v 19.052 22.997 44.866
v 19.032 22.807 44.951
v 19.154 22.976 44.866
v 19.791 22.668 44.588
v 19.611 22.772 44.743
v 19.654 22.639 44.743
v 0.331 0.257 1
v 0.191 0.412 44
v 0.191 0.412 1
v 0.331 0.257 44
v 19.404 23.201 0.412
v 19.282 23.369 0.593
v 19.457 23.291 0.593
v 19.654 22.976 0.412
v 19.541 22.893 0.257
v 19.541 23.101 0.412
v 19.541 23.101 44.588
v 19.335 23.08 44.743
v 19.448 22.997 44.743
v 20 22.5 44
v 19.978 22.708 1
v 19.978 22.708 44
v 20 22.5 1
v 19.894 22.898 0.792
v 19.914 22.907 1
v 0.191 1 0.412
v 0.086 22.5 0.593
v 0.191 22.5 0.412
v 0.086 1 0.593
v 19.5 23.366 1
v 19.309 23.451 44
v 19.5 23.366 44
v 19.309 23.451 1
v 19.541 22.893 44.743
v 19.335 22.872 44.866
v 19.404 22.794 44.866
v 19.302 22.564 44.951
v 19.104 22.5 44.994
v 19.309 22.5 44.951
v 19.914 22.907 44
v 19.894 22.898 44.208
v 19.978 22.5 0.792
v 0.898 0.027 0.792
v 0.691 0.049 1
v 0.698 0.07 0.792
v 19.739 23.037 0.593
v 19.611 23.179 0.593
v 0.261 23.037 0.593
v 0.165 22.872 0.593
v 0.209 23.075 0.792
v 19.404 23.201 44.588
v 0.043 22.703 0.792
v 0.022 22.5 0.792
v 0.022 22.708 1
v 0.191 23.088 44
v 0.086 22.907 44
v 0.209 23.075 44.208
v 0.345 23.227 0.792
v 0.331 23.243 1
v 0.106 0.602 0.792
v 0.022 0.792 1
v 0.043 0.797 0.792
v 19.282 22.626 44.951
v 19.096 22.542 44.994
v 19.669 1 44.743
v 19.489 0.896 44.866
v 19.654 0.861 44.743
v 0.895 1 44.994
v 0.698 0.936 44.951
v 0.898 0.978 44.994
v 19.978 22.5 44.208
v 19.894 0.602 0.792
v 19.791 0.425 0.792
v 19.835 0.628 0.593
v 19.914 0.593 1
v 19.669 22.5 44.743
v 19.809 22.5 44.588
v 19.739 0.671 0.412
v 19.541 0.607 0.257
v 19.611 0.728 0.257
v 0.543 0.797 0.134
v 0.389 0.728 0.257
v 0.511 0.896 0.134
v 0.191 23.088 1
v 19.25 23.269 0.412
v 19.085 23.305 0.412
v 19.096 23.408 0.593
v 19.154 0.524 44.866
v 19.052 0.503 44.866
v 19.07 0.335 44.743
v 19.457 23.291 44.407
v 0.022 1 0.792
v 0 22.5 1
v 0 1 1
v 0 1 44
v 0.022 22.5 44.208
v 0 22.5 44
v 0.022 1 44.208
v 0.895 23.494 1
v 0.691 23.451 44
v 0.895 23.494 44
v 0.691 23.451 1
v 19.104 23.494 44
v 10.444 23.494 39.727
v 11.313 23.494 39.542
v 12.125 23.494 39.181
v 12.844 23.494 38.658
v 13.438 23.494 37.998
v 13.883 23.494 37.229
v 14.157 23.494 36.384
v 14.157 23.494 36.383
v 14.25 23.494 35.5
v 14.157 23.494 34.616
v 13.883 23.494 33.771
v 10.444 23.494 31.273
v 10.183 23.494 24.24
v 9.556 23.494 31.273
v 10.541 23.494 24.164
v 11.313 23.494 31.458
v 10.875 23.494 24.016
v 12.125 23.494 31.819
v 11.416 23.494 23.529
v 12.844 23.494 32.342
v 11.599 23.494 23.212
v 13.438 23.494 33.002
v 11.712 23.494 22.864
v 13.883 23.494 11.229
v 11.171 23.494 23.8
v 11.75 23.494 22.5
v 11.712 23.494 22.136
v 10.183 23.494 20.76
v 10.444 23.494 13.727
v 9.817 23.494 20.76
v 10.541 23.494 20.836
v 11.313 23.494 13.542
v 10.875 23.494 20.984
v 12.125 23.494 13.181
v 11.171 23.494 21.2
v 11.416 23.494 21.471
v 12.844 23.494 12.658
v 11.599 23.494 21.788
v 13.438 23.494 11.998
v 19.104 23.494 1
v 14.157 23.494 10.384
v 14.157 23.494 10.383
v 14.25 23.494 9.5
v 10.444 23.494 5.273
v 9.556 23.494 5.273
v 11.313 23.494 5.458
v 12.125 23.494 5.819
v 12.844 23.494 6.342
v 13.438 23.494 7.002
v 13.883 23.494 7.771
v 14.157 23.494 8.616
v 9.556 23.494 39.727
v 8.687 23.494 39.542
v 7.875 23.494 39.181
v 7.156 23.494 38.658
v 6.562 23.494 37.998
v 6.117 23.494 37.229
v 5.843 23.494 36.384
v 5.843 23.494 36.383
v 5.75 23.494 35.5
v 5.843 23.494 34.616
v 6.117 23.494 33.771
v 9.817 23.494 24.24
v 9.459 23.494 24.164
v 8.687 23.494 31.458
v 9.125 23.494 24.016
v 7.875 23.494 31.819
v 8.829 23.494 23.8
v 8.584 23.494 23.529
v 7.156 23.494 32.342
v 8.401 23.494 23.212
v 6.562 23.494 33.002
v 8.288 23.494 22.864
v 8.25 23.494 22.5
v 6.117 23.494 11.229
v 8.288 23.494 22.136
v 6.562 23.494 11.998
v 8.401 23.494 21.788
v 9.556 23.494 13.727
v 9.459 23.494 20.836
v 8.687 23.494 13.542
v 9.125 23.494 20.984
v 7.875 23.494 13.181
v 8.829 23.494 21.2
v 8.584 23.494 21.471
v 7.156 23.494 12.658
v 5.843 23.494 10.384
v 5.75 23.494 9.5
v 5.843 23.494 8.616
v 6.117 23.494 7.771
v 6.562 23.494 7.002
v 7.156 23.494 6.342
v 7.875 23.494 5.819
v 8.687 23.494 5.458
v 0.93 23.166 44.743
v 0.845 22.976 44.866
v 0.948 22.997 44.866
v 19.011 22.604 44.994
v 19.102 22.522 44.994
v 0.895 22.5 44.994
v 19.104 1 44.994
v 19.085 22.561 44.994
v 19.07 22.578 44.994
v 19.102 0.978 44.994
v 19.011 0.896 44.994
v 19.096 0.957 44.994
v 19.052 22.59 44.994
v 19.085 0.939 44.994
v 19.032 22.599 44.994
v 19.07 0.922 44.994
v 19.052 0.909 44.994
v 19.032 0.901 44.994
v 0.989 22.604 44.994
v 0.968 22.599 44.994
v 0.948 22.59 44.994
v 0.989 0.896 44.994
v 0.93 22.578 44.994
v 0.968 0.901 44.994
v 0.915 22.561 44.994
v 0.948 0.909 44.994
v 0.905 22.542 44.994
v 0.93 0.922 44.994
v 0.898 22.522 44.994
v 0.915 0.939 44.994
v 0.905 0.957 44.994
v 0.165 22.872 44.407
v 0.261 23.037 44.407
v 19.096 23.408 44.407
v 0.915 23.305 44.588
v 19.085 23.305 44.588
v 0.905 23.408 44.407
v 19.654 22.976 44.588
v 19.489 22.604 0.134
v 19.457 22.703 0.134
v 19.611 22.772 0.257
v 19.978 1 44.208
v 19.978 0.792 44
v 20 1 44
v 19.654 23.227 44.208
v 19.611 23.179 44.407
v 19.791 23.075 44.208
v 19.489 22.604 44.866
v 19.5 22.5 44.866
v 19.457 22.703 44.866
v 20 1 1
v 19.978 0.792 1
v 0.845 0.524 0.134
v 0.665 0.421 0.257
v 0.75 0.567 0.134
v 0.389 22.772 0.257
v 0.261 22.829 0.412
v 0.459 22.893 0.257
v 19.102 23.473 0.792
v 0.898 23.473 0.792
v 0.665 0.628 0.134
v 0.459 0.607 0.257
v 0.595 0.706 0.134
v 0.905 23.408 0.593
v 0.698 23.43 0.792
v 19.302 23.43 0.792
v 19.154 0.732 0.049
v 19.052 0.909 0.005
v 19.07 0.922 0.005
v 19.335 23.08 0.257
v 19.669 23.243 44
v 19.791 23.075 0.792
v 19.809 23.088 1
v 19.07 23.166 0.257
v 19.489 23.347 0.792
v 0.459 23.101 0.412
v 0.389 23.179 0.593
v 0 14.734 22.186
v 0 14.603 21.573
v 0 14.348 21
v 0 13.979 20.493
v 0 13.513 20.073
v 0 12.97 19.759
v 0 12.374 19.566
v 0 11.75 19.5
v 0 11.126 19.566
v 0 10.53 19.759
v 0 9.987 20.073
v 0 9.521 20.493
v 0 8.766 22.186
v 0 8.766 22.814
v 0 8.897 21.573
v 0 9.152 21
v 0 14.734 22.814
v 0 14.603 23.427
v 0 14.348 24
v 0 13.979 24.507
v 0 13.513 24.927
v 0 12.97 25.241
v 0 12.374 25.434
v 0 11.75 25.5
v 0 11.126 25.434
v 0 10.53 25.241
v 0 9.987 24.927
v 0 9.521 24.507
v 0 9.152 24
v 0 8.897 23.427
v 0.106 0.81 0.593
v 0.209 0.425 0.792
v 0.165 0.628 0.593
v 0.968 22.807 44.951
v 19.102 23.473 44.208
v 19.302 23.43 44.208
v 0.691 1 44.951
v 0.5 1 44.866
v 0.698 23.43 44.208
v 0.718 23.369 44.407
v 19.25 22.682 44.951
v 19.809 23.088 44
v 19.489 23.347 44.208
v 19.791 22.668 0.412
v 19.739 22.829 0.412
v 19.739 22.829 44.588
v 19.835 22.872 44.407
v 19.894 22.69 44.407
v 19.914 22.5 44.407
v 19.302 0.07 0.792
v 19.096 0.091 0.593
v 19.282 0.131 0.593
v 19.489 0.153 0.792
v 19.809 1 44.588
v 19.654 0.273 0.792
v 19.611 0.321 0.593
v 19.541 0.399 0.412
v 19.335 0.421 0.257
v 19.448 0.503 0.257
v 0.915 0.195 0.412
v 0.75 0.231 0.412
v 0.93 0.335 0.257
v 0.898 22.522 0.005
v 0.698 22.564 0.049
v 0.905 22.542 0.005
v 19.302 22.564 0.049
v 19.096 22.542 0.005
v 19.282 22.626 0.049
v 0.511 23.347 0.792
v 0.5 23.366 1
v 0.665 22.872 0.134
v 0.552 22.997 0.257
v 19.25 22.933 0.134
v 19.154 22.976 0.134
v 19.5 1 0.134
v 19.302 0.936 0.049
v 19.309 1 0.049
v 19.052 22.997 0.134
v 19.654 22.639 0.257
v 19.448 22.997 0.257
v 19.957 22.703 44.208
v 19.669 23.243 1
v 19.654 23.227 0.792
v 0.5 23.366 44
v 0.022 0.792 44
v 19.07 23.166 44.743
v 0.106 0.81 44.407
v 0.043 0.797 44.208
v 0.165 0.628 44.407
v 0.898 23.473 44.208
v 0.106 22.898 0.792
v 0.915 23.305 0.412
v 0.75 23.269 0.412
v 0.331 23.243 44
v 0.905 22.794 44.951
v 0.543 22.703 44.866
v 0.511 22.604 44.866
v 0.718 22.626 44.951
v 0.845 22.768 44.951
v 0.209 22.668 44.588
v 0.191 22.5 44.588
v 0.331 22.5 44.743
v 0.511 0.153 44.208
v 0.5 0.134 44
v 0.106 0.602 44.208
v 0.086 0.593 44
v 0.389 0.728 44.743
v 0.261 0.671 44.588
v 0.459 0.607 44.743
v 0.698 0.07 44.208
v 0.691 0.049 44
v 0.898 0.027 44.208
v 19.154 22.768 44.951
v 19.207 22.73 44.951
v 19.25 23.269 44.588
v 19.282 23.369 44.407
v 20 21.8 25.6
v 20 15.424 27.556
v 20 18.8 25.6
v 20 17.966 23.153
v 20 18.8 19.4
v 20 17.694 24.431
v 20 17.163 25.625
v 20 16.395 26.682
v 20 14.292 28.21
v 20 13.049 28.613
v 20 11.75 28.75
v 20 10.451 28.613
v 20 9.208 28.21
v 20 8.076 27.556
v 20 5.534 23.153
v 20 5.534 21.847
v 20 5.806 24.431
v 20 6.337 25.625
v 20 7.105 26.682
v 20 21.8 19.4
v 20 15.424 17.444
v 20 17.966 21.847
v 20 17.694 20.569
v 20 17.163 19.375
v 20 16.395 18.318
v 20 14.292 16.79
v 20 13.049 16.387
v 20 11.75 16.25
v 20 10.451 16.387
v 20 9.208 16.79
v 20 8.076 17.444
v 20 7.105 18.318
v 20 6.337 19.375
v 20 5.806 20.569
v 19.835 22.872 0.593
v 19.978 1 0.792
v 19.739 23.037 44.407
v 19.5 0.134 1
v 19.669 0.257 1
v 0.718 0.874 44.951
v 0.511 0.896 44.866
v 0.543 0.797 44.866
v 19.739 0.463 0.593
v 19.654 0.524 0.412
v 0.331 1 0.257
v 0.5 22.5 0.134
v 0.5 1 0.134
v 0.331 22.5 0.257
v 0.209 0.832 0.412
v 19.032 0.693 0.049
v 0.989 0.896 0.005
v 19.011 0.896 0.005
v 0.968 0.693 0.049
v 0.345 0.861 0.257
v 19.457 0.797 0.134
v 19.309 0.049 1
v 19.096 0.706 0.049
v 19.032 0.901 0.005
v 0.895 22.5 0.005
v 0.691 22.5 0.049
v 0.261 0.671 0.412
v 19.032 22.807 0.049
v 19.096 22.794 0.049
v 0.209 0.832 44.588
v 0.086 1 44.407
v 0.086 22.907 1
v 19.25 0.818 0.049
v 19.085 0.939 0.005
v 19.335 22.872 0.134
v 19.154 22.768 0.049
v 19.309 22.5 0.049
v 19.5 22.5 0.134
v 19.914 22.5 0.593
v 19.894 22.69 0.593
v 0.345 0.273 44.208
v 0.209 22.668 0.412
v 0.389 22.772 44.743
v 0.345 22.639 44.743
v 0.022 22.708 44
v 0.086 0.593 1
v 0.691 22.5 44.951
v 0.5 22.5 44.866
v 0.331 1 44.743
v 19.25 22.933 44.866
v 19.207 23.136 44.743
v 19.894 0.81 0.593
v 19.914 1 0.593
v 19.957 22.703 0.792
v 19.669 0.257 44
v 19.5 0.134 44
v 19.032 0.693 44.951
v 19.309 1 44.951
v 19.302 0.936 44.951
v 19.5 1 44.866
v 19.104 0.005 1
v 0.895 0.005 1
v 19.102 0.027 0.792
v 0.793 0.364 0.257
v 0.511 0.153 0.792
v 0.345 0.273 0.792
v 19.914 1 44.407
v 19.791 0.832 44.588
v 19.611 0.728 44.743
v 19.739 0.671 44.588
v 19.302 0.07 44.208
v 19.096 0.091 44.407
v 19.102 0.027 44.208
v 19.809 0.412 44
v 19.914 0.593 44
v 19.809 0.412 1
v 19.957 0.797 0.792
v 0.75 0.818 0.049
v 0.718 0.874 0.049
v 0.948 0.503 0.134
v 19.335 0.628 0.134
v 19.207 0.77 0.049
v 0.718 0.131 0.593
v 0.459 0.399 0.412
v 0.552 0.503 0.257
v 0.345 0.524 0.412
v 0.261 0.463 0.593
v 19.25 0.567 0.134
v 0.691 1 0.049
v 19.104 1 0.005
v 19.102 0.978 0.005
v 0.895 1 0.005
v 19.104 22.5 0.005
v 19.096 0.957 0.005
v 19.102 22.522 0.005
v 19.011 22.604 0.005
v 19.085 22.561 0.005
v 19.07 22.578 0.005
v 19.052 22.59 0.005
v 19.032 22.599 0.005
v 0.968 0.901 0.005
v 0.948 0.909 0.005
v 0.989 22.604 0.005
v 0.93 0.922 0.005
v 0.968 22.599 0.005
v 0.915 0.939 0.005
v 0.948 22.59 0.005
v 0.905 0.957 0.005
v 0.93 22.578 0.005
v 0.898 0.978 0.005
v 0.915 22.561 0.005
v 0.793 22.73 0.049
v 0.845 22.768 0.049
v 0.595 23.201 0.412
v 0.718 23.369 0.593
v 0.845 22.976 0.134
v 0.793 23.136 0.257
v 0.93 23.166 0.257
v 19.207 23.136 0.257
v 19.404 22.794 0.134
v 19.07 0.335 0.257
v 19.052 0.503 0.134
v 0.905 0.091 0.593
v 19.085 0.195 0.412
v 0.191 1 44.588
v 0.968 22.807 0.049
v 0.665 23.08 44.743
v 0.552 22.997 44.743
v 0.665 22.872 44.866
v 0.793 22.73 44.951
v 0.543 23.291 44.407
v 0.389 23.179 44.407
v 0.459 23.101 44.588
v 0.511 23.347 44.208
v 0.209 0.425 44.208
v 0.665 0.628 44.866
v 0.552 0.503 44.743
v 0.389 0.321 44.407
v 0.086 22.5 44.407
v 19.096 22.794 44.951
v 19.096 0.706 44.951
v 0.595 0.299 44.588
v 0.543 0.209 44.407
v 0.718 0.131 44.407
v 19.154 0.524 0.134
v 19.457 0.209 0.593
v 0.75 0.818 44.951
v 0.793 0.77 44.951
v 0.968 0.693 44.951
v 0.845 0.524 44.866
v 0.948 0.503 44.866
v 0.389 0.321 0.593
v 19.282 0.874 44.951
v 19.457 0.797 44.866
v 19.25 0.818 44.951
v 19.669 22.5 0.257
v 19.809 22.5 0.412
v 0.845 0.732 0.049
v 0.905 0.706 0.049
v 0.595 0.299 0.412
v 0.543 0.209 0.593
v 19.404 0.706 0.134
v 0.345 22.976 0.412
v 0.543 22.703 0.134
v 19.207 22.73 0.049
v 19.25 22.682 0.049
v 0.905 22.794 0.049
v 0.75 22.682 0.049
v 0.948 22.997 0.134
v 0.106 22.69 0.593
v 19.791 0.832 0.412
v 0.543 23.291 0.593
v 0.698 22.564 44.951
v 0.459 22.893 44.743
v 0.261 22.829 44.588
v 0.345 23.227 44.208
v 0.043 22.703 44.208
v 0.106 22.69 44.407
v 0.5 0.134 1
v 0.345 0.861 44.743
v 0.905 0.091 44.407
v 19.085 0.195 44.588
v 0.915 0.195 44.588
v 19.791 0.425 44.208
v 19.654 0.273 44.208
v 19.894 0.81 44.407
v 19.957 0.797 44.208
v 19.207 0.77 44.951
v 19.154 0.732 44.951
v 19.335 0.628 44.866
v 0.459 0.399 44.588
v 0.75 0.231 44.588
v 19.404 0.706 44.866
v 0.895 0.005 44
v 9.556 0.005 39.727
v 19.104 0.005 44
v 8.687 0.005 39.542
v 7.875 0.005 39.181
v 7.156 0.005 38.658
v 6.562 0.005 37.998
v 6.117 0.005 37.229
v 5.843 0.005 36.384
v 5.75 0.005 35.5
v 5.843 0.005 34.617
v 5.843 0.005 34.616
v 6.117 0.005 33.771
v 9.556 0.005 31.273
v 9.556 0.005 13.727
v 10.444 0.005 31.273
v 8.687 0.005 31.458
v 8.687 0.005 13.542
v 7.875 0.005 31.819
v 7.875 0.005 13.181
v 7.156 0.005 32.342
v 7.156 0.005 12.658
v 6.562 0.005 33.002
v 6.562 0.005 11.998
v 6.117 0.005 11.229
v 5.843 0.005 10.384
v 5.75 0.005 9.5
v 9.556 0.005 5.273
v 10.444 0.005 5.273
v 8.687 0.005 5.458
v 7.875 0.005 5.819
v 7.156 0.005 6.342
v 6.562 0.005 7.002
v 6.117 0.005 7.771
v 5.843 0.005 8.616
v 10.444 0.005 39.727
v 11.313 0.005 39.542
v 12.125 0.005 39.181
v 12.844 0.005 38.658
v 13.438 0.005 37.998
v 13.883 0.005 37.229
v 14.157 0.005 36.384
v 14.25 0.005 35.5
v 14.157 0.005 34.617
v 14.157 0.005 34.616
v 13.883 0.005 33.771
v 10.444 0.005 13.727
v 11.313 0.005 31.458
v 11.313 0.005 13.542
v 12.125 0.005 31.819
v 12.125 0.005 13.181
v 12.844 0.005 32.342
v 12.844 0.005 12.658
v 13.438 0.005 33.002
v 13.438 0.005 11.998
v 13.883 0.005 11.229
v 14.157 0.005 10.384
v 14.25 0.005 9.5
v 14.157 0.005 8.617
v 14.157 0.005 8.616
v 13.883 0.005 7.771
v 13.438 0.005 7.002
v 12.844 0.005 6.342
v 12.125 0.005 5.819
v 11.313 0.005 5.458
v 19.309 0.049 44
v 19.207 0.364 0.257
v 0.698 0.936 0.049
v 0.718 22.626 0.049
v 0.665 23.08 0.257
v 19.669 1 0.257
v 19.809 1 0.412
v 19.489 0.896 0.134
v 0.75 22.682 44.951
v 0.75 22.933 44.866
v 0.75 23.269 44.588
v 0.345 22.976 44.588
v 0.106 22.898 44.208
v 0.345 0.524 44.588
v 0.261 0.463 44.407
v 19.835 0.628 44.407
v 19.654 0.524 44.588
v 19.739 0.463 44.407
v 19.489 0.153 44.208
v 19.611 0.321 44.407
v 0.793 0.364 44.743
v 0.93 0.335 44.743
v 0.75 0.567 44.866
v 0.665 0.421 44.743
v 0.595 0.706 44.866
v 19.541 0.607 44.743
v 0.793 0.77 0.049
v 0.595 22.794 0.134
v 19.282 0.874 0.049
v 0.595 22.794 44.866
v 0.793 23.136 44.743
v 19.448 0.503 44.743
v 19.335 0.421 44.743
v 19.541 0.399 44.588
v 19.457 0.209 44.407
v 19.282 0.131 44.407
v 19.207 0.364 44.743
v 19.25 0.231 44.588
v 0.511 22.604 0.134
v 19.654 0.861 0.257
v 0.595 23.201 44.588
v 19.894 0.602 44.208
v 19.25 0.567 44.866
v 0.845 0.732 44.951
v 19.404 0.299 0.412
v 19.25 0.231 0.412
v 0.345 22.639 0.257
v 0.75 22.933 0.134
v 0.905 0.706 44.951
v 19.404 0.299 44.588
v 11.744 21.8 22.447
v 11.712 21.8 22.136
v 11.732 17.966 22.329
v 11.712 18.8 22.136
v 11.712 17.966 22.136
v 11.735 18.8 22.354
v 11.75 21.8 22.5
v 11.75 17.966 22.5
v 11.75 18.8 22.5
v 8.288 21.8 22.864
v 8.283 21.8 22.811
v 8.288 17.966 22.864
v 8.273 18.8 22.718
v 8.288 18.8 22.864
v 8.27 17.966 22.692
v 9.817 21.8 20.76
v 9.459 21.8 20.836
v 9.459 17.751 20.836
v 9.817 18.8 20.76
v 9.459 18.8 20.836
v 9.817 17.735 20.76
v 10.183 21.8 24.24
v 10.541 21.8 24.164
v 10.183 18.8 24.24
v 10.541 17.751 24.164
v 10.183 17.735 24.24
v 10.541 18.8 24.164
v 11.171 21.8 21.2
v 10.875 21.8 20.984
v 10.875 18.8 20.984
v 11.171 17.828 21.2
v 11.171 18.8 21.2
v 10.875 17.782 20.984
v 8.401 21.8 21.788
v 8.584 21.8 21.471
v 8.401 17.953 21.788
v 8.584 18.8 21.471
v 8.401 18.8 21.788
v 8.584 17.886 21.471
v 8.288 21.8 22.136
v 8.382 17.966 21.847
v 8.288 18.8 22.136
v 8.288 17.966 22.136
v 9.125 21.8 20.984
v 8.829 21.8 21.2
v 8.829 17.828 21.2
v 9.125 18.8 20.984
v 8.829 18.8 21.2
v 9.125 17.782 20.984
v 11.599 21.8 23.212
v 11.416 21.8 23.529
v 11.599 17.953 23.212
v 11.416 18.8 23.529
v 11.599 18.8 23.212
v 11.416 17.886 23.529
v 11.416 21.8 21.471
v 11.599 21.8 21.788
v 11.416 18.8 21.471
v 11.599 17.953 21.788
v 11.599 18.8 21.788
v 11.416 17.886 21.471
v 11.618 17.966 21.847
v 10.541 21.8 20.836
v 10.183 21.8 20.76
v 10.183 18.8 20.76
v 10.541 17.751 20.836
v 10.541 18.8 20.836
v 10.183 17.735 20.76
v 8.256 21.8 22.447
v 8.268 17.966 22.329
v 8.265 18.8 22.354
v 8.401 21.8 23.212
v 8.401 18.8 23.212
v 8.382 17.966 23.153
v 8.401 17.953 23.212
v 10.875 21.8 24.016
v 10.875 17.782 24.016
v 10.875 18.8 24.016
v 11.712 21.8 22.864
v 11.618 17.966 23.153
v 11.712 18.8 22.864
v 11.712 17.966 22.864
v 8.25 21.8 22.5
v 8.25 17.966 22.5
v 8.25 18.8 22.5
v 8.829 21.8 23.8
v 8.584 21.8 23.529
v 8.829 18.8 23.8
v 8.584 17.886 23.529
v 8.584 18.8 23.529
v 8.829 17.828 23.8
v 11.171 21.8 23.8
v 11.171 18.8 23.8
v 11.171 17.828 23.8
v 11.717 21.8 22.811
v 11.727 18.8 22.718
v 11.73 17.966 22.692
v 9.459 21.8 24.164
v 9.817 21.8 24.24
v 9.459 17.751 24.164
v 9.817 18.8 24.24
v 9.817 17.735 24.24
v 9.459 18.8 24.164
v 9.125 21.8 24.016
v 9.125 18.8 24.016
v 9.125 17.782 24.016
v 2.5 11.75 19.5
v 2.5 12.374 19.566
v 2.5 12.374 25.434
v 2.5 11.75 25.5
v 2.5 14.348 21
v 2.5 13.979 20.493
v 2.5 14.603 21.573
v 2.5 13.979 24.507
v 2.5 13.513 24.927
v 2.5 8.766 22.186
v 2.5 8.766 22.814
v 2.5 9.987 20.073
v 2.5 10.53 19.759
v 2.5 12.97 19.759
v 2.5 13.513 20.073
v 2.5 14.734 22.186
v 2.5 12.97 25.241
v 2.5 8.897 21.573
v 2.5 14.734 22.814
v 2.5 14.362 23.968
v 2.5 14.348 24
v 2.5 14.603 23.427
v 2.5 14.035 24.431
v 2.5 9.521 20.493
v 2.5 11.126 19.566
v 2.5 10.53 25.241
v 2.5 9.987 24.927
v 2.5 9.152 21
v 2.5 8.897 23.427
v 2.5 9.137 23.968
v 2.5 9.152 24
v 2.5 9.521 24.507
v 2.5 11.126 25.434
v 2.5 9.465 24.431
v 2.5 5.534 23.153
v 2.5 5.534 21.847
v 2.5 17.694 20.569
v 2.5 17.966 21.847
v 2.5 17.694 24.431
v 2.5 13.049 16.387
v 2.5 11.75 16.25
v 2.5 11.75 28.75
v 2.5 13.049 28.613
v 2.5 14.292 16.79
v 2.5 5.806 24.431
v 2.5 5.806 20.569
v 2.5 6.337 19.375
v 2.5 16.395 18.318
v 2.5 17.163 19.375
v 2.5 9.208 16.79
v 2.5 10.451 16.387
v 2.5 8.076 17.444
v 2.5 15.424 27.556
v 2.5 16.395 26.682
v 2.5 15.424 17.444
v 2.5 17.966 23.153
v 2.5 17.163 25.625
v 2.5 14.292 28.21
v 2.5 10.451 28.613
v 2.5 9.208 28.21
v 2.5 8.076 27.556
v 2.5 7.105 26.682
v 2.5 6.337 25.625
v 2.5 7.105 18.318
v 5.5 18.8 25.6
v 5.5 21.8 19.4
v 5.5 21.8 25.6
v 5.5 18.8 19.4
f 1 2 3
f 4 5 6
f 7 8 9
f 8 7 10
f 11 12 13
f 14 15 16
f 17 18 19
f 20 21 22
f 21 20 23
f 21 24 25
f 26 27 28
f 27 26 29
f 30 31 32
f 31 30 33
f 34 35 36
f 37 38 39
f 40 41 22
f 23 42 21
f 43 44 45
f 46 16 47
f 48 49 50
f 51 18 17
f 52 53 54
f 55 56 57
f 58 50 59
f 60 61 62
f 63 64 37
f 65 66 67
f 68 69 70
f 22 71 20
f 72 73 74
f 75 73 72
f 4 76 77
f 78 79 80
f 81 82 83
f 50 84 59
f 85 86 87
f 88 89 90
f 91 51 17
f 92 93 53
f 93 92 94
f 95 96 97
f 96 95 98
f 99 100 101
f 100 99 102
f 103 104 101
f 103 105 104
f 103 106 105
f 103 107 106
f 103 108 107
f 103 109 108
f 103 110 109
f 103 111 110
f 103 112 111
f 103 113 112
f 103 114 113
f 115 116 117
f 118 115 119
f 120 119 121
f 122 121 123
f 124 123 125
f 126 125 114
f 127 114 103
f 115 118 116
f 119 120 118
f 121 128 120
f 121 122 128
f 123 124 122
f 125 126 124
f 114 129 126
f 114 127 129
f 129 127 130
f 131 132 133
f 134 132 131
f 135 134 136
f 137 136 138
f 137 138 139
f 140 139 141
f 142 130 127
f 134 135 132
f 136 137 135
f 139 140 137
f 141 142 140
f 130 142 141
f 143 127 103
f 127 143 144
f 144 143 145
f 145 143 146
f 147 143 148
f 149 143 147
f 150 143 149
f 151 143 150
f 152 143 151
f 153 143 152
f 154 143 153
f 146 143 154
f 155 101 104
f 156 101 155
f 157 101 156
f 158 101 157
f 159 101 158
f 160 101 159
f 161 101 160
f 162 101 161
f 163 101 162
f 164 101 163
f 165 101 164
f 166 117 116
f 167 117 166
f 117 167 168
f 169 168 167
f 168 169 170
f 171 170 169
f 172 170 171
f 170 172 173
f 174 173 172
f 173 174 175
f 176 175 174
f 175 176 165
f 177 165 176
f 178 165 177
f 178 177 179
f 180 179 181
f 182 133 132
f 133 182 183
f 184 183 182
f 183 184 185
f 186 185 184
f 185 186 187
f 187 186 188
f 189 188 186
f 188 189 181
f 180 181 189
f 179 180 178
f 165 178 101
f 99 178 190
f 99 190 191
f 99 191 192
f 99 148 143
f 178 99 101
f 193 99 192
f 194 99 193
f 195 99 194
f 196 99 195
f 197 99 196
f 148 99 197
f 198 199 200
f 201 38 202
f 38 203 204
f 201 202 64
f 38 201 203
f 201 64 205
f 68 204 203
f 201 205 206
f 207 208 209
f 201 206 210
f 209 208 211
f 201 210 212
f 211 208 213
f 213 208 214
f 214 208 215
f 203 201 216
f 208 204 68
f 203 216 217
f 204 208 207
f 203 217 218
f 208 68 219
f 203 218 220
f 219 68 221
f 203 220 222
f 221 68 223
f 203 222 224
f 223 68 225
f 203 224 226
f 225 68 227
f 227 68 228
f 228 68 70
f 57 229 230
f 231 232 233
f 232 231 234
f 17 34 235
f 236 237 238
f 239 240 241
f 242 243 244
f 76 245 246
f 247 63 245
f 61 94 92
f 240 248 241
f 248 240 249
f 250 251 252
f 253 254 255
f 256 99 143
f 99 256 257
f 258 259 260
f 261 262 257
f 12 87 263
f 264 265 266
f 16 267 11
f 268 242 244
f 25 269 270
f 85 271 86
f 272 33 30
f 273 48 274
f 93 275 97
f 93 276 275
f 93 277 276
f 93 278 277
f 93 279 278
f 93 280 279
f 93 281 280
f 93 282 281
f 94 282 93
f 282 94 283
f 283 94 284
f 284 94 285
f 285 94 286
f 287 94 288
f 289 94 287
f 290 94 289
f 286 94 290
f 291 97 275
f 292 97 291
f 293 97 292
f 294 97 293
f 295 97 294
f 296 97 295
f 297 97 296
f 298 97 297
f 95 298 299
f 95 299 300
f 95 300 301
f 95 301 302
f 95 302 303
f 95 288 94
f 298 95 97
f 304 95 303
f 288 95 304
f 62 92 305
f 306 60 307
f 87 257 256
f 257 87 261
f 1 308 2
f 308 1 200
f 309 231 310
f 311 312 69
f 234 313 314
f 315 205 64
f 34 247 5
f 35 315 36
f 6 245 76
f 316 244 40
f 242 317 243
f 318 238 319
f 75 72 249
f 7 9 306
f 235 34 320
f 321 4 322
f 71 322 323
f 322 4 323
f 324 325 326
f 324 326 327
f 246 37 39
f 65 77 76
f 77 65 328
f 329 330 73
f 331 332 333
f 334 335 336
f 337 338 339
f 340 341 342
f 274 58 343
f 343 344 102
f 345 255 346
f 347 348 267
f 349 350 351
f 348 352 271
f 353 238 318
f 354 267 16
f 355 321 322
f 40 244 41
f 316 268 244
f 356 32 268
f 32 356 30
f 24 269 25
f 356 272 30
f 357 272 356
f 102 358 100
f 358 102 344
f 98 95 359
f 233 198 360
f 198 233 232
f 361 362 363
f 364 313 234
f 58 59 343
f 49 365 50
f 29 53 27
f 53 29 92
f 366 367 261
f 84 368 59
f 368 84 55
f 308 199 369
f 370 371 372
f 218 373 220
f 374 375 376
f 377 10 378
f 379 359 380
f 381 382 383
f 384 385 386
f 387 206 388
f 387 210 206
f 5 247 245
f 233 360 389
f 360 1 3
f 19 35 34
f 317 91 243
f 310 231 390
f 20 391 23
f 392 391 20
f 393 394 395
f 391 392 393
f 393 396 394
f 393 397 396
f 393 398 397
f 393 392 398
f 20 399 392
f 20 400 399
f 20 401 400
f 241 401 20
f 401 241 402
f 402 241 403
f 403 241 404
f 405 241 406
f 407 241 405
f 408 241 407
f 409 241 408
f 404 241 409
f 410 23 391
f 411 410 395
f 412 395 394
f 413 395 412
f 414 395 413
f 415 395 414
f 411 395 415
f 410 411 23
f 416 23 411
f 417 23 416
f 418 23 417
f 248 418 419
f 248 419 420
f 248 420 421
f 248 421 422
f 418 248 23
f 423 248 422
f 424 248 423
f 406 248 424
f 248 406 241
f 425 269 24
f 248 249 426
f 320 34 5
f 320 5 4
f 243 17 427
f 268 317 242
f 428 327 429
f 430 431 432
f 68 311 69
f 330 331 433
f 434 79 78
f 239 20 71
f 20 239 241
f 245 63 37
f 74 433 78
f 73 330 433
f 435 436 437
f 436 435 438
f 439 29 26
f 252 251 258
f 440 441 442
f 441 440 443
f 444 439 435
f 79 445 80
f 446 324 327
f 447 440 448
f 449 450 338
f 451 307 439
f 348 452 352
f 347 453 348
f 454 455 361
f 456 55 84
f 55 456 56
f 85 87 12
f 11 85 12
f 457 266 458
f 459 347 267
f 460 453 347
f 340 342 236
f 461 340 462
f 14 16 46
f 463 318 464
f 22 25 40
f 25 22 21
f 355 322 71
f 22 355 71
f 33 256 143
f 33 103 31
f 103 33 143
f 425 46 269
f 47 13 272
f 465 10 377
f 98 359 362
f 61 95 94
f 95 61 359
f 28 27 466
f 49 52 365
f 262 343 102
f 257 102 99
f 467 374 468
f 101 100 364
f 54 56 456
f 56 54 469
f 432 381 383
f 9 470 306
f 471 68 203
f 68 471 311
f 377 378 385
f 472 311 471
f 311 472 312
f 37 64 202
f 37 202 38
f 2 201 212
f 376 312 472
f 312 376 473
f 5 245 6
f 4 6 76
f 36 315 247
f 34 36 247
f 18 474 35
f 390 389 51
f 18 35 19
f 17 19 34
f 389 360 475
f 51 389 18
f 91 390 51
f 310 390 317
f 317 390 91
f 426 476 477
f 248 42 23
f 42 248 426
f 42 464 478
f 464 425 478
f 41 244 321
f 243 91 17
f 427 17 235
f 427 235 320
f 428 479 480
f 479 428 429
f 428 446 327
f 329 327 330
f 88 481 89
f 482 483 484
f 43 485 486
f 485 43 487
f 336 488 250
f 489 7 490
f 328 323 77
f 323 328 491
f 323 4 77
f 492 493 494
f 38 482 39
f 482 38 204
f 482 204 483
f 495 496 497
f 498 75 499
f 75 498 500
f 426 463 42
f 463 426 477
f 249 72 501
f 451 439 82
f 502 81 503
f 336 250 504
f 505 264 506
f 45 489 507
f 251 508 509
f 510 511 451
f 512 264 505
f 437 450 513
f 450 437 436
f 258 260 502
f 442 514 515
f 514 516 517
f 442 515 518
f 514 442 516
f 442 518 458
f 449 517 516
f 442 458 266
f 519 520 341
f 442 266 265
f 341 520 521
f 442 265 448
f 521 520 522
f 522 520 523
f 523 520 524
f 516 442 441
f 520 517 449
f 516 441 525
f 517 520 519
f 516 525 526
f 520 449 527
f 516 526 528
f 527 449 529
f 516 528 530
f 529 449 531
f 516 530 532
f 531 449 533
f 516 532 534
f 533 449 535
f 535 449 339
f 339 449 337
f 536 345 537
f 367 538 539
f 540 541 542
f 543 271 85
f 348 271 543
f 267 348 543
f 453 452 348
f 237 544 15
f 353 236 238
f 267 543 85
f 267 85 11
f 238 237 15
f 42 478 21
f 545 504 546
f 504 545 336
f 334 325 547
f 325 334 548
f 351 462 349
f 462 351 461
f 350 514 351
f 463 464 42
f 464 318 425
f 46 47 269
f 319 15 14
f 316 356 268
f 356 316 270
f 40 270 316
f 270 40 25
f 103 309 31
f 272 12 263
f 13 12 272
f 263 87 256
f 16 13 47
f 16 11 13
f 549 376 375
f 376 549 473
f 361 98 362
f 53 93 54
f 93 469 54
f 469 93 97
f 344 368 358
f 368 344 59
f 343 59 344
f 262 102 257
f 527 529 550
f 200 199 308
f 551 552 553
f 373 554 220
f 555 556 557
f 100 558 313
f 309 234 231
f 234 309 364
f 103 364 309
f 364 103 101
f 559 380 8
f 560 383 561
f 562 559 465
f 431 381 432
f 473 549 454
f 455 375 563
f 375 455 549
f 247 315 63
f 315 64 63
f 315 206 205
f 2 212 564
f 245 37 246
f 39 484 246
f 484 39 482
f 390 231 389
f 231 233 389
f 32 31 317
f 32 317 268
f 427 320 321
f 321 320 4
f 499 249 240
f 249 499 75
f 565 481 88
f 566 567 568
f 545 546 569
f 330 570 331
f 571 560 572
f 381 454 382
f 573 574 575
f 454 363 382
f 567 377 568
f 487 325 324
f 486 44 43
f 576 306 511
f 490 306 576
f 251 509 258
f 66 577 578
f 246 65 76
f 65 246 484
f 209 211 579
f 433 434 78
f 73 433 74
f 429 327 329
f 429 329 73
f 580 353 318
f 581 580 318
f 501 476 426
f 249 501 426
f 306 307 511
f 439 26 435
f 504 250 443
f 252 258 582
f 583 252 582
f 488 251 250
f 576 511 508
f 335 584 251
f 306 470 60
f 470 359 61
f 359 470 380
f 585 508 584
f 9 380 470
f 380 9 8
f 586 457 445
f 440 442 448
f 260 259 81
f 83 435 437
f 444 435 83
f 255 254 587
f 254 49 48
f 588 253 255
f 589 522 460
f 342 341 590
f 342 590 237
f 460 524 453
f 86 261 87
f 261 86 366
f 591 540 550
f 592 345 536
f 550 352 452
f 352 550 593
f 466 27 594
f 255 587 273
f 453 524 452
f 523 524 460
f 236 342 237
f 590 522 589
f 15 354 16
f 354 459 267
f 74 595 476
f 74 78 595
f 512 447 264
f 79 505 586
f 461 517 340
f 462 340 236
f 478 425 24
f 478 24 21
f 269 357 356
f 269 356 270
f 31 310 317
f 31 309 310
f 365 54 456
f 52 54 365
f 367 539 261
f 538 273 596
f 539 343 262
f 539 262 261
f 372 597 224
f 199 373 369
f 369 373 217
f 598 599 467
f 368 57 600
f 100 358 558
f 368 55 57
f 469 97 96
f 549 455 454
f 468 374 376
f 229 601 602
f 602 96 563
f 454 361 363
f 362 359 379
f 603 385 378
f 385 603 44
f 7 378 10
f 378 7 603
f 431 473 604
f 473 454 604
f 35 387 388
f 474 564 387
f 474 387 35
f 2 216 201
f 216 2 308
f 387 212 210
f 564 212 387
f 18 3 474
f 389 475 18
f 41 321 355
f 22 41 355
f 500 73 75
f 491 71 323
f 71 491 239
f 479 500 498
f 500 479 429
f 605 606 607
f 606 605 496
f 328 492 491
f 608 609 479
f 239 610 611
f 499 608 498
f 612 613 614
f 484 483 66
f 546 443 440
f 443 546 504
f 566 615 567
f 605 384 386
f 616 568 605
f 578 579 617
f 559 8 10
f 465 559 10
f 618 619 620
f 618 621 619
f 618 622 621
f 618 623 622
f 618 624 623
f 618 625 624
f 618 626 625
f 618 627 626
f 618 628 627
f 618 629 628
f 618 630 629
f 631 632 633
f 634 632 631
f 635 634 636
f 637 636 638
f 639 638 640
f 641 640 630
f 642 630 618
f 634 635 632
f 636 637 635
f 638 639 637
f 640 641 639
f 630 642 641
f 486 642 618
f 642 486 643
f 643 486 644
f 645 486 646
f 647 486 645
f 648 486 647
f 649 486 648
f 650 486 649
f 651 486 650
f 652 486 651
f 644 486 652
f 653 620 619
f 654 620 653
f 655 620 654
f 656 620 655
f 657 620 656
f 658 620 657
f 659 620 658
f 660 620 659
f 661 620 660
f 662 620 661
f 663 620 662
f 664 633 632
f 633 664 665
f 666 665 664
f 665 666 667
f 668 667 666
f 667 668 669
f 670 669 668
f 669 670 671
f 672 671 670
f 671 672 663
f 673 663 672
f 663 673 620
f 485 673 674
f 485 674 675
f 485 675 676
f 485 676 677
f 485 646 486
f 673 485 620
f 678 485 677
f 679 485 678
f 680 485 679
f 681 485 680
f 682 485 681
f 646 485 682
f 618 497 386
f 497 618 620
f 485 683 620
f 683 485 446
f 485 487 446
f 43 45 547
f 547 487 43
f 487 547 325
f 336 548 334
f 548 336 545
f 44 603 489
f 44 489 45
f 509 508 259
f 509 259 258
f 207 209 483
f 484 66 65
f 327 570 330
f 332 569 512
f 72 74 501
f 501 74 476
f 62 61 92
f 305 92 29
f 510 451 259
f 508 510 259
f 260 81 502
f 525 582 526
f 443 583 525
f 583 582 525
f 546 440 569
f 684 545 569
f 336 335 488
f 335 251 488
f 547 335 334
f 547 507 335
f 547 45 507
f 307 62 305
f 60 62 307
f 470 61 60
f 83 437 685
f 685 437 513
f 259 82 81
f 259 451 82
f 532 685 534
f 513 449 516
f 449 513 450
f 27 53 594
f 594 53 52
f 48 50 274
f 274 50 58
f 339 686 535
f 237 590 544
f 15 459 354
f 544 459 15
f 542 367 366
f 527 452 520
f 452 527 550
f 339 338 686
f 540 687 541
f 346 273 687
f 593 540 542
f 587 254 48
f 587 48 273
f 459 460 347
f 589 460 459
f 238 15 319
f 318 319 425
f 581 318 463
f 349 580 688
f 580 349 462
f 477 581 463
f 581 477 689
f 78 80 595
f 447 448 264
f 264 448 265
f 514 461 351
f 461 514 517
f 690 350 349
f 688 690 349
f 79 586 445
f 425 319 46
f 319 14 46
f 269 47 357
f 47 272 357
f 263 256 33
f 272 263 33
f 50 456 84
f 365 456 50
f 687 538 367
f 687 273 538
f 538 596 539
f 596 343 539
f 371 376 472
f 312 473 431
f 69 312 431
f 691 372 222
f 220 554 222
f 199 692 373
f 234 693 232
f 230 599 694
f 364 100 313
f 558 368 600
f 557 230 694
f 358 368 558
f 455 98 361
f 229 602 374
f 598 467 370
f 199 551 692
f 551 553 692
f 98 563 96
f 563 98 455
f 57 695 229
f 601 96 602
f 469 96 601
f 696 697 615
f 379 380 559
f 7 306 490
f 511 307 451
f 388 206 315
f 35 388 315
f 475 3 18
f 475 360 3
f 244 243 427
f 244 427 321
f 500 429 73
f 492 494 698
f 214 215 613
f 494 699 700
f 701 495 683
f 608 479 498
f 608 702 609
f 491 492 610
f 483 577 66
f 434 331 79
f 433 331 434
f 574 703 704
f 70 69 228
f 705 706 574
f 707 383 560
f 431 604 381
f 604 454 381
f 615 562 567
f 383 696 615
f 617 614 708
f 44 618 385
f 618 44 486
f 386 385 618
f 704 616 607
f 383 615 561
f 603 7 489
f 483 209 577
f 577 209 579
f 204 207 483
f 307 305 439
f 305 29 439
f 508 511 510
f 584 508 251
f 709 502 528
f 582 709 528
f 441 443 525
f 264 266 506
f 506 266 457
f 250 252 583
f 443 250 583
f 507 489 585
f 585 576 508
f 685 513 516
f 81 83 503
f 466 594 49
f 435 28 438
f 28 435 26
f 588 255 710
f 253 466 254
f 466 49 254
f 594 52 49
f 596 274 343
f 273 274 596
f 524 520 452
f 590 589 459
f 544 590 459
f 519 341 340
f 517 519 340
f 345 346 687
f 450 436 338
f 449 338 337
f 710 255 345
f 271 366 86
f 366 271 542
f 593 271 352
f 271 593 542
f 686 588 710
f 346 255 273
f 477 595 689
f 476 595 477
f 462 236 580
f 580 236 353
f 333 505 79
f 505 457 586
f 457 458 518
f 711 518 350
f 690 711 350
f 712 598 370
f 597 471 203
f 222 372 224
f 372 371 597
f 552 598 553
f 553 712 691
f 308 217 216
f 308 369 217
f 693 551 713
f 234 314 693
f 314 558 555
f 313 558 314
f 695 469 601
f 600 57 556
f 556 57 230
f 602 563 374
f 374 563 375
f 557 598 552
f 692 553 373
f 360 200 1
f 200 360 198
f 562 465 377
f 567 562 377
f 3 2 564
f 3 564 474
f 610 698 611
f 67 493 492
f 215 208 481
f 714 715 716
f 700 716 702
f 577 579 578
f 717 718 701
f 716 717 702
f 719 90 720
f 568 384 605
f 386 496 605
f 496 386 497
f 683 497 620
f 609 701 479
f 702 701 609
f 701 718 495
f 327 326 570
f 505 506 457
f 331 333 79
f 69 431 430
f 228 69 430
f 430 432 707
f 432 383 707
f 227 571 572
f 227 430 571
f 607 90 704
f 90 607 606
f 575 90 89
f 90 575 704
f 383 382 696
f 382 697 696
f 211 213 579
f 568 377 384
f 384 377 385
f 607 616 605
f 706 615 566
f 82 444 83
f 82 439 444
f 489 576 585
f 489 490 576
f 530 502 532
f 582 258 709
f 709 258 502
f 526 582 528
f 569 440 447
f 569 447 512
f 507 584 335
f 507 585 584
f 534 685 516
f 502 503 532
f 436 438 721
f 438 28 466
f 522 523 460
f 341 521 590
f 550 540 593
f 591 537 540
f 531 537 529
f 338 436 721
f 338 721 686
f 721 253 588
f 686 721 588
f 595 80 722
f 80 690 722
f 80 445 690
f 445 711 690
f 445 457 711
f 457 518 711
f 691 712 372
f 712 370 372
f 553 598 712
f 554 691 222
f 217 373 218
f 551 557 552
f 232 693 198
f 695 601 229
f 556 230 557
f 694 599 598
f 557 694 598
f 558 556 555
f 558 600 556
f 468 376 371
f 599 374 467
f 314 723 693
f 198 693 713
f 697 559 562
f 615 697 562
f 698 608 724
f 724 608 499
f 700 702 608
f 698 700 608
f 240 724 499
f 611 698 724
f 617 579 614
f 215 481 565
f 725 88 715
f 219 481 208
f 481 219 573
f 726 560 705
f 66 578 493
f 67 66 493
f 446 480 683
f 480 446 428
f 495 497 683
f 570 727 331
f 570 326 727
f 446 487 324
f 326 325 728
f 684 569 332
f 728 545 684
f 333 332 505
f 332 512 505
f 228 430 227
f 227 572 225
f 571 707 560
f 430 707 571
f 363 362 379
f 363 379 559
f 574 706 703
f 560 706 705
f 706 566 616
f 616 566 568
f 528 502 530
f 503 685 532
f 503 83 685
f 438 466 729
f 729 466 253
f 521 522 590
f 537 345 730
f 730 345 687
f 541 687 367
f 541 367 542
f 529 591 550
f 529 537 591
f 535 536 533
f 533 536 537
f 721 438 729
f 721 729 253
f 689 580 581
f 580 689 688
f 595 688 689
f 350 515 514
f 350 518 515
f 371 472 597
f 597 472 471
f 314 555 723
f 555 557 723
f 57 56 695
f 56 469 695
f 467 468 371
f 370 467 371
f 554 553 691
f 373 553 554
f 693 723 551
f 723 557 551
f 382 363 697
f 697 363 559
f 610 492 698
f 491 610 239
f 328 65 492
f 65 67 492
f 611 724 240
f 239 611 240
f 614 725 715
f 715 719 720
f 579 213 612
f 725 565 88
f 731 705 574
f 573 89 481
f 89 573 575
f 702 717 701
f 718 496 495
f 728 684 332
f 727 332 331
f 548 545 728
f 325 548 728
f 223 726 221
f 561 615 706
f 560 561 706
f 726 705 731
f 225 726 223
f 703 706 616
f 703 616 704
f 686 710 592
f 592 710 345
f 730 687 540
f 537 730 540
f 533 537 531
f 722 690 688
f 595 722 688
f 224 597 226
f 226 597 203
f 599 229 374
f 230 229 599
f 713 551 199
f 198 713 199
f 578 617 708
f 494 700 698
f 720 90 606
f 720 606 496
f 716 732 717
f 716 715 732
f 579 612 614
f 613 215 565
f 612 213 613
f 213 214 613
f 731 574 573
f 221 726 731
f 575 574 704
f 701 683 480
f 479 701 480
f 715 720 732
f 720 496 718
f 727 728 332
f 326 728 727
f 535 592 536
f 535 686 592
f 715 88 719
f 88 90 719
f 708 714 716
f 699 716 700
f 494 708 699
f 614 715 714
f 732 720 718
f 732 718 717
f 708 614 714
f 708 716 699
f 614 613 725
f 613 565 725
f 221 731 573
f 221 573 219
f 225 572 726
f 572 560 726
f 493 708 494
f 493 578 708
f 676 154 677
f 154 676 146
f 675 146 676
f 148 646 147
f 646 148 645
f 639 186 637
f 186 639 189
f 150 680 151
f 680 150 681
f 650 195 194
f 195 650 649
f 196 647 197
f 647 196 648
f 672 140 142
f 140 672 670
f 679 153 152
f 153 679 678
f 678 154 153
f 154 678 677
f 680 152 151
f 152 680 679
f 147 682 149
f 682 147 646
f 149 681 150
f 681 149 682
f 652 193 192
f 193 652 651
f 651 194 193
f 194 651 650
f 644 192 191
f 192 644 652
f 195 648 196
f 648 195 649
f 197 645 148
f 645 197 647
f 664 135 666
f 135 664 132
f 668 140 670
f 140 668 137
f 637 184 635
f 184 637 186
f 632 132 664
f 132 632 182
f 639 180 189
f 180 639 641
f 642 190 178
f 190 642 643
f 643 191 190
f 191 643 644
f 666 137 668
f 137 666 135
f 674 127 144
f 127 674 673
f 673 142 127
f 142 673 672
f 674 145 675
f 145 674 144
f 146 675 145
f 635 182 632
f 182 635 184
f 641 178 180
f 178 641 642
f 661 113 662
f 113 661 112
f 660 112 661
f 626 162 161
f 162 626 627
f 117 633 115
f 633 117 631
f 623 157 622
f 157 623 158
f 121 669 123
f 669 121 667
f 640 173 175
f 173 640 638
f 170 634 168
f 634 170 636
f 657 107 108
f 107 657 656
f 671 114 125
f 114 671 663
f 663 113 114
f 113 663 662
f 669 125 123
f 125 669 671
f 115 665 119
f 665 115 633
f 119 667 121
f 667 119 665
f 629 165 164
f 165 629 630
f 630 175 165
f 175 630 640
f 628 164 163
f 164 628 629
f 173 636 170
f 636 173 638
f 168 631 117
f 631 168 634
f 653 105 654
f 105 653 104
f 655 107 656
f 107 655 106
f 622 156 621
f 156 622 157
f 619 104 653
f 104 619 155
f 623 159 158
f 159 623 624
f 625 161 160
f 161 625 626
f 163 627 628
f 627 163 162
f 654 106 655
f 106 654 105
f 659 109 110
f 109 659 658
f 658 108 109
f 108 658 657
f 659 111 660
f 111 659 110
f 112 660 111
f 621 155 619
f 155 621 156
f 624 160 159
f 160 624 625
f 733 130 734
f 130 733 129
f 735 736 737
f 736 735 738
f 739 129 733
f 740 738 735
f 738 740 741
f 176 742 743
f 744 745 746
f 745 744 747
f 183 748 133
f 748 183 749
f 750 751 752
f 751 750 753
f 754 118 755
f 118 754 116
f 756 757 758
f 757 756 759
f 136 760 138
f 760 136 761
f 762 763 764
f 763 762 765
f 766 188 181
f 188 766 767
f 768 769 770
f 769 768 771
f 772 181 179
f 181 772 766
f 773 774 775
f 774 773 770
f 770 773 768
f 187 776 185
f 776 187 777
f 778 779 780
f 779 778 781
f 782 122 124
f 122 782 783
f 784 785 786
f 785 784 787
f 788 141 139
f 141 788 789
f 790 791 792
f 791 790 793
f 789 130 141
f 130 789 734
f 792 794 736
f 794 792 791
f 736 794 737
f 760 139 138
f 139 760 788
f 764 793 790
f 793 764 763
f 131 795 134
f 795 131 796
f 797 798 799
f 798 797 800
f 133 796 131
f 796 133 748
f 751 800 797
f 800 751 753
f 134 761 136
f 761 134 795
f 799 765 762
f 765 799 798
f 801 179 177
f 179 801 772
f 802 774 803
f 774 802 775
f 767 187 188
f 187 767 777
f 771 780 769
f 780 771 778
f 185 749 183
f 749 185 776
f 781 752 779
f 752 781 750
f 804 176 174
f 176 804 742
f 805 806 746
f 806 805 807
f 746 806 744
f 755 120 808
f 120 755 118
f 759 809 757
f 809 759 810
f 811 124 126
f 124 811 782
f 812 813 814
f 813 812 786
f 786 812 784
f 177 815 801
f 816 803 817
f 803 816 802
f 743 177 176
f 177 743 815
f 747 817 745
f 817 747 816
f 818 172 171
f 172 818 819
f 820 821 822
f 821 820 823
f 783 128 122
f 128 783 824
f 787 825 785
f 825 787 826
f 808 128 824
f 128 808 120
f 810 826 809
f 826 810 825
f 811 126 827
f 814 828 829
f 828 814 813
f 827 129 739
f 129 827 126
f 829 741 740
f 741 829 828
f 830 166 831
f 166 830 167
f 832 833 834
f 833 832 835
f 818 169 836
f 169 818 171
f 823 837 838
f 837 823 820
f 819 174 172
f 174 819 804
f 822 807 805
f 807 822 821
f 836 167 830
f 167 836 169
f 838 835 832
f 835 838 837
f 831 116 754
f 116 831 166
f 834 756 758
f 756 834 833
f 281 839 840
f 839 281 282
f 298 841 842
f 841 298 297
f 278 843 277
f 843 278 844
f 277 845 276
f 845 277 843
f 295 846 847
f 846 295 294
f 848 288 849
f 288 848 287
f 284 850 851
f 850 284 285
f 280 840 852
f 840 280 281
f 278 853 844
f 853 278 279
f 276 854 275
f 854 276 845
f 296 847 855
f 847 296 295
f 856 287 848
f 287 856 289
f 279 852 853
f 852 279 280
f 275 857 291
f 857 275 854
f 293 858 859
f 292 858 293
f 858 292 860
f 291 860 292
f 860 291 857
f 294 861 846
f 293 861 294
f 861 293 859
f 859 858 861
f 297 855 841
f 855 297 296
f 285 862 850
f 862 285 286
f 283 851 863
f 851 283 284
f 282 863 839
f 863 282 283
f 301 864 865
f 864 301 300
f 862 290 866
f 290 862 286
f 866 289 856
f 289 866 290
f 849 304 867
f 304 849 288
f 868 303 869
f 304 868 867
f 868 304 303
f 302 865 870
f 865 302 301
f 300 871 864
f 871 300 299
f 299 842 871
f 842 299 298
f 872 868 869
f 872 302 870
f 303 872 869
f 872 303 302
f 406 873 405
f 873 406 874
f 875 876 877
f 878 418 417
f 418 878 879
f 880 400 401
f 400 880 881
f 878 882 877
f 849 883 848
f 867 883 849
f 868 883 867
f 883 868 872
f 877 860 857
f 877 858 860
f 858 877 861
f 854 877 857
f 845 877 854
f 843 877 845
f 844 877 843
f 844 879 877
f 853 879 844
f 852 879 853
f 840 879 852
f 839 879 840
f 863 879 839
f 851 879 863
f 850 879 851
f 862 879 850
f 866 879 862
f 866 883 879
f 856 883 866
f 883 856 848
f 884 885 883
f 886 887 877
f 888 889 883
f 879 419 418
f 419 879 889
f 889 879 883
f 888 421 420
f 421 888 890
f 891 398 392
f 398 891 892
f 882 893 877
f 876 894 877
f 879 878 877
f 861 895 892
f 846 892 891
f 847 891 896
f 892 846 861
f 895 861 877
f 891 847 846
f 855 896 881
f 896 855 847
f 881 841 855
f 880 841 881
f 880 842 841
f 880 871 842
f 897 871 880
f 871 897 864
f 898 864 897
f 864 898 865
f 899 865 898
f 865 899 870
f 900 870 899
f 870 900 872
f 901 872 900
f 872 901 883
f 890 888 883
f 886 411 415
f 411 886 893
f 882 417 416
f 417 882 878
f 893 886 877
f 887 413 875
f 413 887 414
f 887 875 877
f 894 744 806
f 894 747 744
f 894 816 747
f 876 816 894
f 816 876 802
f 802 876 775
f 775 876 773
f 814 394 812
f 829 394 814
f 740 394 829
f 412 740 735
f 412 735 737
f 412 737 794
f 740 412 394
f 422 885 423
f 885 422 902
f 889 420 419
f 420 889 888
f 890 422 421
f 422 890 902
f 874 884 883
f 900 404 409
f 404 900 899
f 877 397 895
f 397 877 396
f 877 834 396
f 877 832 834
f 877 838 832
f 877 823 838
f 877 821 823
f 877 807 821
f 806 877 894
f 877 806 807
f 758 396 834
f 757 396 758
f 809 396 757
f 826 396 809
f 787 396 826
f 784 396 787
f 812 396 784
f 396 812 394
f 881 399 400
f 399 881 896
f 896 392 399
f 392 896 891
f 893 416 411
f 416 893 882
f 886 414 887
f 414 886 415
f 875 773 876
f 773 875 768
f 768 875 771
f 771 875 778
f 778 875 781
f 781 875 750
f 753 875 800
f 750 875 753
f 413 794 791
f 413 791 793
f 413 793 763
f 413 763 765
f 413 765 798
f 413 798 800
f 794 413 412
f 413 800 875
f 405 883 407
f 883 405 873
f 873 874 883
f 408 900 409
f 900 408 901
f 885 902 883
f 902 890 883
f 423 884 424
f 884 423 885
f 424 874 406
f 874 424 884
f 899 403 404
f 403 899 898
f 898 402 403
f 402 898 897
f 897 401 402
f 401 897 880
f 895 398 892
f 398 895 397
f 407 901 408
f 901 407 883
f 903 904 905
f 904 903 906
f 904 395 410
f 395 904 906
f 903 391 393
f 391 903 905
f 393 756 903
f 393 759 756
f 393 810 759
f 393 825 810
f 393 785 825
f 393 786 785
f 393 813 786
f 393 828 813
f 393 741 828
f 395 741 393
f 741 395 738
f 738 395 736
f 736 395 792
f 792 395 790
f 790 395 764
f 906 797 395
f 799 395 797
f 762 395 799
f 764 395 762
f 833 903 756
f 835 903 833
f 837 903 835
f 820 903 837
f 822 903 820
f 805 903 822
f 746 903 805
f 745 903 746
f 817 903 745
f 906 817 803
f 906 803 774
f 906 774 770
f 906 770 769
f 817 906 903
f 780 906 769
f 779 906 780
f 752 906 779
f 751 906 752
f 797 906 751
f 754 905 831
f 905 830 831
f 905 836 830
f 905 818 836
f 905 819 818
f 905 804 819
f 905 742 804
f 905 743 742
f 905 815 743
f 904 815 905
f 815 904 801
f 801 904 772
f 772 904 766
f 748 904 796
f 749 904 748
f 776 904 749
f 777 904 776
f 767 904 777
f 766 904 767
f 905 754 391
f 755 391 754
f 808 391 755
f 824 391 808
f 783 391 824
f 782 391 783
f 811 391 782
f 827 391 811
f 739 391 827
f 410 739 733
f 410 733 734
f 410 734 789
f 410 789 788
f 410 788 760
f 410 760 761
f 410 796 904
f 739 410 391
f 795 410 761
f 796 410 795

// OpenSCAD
// file: rounded_cube.scad
// Higher definition curves
$fs = 0.01;

module roundedcube(size = [1, 1, 1], center = false, radius = 0.5, apply_to = "all") {
	// If single value, convert to [x, y, z] vector
	size = (size[0] == undef) ? [size, size, size] : size;

	translate_min = radius;
	translate_xmax = size[0] - radius;
	translate_ymax = size[1] - radius;
	translate_zmax = size[2] - radius;

	diameter = radius * 2;

	module build_point(type = "sphere", rotate = [0, 0, 0]) {
		if (type == "sphere") {
			sphere(r = radius);
		} else if (type == "cylinder") {
			rotate(a = rotate)
			cylinder(h = diameter, r = radius, center = true);
		}
	}

	obj_translate = (center == false) ?
		[0, 0, 0] : [
			-(size[0] / 2),
			-(size[1] / 2),
			-(size[2] / 2)
		];

	translate(v = obj_translate) {
		hull() {
			for (translate_x = [translate_min, translate_xmax]) {
				x_at = (translate_x == translate_min) ? "min" : "max";
				for (translate_y = [translate_min, translate_ymax]) {
					y_at = (translate_y == translate_min) ? "min" : "max";
					for (translate_z = [translate_min, translate_zmax]) {
						z_at = (translate_z == translate_min) ? "min" : "max";

						translate(v = [translate_x, translate_y, translate_z])
						if (
							(apply_to == "all") ||
							(apply_to == "xmin" && x_at == "min") || (apply_to == "xmax" && x_at == "max") ||
							(apply_to == "ymin" && y_at == "min") || (apply_to == "ymax" && y_at == "max") ||
							(apply_to == "zmin" && z_at == "min") || (apply_to == "zmax" && z_at == "max")
						) {
							build_point("sphere");
						} else {
							rotate = 
								(apply_to == "xmin" || apply_to == "xmax" || apply_to == "x") ? [0, 90, 0] : (
								(apply_to == "ymin" || apply_to == "ymax" || apply_to == "y") ? [90, 90, 0] :
								[0, 0, 0]
							);
							build_point("cylinder", rotate);
						}
					}
				}
			}
		}
	}
}
// main file
width = 20;
height = 45;
depth = 23.5;
as_diam = 8.5;
as_distance = 9.5;
m3_hole = 3.5;
laser_view_hole_diam = 6;
laser_view_hole_depth = 2.5;
laser_housing_hole_diam = 12.5;
m3_nut_depth = 14.5;
m3_nut_width = 6.2;
m3_nut_height = 3;

include <rounded_cube.scad>


difference()
{

    roundedcube([width, depth, height], false, 1, "all");
    
    //cube(size = [width, depth, height]);
   
    // first hole to put arm-axis in.
    translate([width / 2, 0, as_distance])
        rotate([270, 0, 0])
            cylinder(depth, r = (as_diam / 2), center = false);
    
    // second hole to put arm-axis in.
    translate([width / 2, 0, height - as_distance])
        rotate([270, 0, 0])
            cylinder(depth, r = (as_diam / 2), center = false);

    // screw hole.
    translate([width / 2, depth / 2, height / 2])
        rotate([270, 0, 0])
            cylinder(depth / 2, r = (m3_hole / 2), center = false);

    // laser view hole.
    translate([0, depth / 2, height / 2])
        rotate([0, 90, 0])
            cylinder(h = laser_view_hole_depth, r = laser_view_hole_diam / 2, center = false);

    // laser housing hole.
    translate([laser_view_hole_depth, (depth / 2), height / 2])
        rotate([0, 90, 0])
            cylinder(h = width - laser_view_hole_depth, r = laser_housing_hole_diam / 2, center = false);
            
    // m3 nut gap.
    translate([width, 18.8, (height - m3_nut_width) / 2])
        rotate([0, 270, 0])
            cube([m3_nut_width, m3_nut_height, m3_nut_depth]);
    
}  
